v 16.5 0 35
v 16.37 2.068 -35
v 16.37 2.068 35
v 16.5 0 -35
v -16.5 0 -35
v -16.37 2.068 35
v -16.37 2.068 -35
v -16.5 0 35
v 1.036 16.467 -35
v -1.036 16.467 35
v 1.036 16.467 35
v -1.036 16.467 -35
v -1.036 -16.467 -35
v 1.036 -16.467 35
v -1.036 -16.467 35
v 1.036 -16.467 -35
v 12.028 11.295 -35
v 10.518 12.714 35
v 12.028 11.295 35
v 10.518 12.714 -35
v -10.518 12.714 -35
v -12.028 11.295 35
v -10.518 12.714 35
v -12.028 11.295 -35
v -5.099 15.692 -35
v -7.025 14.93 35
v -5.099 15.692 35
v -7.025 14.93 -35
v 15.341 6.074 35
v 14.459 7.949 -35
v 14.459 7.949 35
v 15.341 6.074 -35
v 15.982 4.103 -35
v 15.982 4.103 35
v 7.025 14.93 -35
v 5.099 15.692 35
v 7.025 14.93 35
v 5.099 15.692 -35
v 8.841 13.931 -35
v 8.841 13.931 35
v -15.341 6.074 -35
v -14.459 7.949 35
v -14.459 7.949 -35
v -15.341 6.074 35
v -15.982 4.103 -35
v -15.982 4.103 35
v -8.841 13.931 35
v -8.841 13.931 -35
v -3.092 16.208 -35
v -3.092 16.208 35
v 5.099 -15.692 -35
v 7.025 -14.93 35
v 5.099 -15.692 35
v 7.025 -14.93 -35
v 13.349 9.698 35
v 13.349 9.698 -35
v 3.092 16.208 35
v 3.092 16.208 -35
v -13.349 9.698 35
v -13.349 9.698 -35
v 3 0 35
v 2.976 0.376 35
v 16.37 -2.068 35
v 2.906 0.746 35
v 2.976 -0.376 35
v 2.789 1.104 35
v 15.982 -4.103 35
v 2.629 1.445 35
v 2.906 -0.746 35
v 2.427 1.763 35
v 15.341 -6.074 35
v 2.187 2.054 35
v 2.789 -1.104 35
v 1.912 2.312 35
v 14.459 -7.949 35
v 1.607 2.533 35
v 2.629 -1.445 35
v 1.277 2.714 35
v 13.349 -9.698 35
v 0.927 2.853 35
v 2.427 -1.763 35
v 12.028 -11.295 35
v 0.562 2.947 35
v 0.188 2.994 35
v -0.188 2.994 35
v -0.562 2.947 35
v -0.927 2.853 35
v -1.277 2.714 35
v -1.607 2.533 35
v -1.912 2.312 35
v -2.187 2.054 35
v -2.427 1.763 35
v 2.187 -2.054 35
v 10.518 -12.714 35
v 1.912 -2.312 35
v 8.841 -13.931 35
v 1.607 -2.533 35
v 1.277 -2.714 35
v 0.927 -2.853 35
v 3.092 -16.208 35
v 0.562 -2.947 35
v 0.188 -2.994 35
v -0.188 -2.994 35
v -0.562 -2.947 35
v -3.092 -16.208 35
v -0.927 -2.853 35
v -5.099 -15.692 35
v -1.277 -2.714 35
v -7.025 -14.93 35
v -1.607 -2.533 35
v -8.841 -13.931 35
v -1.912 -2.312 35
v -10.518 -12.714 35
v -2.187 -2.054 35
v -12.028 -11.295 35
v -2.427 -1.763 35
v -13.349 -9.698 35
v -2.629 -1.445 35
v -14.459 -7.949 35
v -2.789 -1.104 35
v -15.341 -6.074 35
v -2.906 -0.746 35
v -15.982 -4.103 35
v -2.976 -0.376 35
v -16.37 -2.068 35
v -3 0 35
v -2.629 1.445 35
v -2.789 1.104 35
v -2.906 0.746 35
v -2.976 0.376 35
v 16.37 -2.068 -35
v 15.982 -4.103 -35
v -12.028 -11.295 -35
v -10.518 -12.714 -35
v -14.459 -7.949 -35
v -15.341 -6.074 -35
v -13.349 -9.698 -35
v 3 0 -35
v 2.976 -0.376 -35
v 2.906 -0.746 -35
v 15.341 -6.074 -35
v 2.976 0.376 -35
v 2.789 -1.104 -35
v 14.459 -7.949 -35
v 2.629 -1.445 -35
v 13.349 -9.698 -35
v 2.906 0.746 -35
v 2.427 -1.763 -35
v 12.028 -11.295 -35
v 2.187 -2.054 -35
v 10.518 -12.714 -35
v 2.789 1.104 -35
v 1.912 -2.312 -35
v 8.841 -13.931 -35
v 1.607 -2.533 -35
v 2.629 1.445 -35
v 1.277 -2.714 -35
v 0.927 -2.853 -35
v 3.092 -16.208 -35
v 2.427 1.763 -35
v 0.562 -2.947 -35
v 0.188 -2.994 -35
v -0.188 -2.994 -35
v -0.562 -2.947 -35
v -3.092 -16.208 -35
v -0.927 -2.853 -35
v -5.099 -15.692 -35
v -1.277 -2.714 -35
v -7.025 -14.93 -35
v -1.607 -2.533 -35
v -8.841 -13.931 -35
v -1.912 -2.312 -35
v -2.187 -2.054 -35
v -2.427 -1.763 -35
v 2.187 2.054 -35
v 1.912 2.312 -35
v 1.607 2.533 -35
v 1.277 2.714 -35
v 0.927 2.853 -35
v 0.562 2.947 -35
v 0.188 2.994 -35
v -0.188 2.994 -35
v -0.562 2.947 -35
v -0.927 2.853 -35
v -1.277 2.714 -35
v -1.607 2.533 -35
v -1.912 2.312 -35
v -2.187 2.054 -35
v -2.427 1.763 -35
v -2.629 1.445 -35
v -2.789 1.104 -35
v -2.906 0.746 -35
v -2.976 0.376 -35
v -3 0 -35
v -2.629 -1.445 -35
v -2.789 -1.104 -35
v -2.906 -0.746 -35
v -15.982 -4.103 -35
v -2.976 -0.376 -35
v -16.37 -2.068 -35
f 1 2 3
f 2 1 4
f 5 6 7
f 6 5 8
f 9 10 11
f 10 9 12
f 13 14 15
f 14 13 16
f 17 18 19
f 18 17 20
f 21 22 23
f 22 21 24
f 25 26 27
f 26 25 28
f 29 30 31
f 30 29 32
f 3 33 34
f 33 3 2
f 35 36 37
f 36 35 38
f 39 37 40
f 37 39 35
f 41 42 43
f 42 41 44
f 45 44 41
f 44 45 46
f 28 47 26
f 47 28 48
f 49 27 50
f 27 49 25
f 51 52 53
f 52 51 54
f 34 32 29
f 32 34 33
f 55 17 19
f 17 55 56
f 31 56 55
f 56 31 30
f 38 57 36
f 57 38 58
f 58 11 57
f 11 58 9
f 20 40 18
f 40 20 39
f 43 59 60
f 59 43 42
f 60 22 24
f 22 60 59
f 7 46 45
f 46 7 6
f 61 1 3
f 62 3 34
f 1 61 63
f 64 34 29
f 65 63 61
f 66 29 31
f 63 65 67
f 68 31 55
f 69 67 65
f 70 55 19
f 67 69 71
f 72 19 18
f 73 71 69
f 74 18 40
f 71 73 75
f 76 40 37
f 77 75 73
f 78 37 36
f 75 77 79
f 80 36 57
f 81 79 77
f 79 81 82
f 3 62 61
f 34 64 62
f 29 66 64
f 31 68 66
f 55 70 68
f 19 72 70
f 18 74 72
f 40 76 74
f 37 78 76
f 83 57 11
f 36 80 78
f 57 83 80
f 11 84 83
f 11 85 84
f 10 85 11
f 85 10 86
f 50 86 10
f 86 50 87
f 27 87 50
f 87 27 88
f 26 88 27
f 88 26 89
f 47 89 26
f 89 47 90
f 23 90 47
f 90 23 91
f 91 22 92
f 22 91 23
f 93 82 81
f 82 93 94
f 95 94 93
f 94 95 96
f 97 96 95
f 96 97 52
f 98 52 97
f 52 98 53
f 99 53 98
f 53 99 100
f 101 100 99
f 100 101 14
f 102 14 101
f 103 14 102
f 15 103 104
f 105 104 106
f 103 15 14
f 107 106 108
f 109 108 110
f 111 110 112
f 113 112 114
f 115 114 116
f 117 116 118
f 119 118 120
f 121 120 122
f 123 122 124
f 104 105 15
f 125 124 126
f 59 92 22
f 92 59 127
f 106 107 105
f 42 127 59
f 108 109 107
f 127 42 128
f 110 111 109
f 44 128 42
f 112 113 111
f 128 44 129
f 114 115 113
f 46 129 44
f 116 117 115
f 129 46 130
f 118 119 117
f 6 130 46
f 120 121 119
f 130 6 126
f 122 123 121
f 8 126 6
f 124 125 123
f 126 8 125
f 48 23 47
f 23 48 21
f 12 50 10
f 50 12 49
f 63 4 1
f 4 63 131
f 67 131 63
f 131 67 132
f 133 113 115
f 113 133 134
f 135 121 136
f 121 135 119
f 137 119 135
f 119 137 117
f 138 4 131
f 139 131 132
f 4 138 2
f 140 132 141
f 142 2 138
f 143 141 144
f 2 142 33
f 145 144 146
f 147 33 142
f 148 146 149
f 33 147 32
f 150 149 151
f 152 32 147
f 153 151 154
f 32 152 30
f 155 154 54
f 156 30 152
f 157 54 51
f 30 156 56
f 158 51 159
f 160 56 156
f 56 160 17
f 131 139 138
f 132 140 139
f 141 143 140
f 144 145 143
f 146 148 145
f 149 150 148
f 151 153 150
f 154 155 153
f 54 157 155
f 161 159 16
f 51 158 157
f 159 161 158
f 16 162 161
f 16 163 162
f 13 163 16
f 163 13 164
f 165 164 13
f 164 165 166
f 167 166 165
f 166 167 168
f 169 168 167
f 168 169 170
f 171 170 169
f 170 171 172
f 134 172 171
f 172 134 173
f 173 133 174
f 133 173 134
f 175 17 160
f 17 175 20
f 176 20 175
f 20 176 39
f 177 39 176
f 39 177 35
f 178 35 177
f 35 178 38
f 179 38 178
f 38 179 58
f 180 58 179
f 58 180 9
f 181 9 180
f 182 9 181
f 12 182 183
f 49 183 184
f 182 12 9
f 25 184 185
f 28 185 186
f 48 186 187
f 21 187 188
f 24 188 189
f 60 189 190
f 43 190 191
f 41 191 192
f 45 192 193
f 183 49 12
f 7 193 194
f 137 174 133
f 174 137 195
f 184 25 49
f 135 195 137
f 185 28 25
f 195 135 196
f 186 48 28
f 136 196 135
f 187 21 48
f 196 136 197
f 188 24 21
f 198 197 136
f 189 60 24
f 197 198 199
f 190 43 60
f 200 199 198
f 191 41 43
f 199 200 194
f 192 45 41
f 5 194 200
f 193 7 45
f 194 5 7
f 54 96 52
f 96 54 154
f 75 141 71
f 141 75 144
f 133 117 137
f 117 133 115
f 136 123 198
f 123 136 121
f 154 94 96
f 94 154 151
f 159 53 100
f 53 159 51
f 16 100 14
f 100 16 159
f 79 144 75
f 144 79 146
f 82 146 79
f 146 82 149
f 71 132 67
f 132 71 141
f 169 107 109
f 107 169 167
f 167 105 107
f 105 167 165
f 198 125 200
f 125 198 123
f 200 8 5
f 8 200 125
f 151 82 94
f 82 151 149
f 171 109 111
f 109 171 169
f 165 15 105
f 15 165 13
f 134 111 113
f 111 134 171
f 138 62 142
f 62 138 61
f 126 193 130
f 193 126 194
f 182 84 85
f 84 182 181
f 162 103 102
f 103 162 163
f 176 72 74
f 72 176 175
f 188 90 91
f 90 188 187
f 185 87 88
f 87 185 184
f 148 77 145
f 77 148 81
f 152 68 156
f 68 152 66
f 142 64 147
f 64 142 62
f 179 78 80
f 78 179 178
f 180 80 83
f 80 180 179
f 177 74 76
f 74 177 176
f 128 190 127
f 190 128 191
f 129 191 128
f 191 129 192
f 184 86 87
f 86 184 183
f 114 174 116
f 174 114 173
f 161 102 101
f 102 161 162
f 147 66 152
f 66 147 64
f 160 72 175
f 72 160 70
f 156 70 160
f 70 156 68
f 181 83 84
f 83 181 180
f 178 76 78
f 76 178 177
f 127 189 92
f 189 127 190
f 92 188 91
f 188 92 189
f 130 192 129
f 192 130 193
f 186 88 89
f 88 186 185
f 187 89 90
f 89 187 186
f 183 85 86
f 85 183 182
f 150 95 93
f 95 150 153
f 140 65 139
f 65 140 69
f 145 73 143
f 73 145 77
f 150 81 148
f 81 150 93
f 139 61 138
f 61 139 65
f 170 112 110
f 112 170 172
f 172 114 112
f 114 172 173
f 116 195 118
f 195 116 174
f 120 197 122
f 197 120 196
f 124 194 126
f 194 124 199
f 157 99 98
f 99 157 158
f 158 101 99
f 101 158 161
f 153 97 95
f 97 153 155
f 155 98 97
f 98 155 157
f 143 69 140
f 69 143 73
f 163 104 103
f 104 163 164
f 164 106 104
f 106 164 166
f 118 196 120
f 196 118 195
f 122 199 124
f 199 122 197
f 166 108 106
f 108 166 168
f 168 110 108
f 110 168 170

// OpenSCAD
$fn = 50;


difference() {
	union() {
		translate(v = [0, 0, -35.0000000000]) {
			cylinder(h = 70, r = 16.5000000000);
		}
	}
	union() {
		translate(v = [0, 0, -100.0000000000]) {
			cylinder(h = 200, r = 3);
		}
	}
}
